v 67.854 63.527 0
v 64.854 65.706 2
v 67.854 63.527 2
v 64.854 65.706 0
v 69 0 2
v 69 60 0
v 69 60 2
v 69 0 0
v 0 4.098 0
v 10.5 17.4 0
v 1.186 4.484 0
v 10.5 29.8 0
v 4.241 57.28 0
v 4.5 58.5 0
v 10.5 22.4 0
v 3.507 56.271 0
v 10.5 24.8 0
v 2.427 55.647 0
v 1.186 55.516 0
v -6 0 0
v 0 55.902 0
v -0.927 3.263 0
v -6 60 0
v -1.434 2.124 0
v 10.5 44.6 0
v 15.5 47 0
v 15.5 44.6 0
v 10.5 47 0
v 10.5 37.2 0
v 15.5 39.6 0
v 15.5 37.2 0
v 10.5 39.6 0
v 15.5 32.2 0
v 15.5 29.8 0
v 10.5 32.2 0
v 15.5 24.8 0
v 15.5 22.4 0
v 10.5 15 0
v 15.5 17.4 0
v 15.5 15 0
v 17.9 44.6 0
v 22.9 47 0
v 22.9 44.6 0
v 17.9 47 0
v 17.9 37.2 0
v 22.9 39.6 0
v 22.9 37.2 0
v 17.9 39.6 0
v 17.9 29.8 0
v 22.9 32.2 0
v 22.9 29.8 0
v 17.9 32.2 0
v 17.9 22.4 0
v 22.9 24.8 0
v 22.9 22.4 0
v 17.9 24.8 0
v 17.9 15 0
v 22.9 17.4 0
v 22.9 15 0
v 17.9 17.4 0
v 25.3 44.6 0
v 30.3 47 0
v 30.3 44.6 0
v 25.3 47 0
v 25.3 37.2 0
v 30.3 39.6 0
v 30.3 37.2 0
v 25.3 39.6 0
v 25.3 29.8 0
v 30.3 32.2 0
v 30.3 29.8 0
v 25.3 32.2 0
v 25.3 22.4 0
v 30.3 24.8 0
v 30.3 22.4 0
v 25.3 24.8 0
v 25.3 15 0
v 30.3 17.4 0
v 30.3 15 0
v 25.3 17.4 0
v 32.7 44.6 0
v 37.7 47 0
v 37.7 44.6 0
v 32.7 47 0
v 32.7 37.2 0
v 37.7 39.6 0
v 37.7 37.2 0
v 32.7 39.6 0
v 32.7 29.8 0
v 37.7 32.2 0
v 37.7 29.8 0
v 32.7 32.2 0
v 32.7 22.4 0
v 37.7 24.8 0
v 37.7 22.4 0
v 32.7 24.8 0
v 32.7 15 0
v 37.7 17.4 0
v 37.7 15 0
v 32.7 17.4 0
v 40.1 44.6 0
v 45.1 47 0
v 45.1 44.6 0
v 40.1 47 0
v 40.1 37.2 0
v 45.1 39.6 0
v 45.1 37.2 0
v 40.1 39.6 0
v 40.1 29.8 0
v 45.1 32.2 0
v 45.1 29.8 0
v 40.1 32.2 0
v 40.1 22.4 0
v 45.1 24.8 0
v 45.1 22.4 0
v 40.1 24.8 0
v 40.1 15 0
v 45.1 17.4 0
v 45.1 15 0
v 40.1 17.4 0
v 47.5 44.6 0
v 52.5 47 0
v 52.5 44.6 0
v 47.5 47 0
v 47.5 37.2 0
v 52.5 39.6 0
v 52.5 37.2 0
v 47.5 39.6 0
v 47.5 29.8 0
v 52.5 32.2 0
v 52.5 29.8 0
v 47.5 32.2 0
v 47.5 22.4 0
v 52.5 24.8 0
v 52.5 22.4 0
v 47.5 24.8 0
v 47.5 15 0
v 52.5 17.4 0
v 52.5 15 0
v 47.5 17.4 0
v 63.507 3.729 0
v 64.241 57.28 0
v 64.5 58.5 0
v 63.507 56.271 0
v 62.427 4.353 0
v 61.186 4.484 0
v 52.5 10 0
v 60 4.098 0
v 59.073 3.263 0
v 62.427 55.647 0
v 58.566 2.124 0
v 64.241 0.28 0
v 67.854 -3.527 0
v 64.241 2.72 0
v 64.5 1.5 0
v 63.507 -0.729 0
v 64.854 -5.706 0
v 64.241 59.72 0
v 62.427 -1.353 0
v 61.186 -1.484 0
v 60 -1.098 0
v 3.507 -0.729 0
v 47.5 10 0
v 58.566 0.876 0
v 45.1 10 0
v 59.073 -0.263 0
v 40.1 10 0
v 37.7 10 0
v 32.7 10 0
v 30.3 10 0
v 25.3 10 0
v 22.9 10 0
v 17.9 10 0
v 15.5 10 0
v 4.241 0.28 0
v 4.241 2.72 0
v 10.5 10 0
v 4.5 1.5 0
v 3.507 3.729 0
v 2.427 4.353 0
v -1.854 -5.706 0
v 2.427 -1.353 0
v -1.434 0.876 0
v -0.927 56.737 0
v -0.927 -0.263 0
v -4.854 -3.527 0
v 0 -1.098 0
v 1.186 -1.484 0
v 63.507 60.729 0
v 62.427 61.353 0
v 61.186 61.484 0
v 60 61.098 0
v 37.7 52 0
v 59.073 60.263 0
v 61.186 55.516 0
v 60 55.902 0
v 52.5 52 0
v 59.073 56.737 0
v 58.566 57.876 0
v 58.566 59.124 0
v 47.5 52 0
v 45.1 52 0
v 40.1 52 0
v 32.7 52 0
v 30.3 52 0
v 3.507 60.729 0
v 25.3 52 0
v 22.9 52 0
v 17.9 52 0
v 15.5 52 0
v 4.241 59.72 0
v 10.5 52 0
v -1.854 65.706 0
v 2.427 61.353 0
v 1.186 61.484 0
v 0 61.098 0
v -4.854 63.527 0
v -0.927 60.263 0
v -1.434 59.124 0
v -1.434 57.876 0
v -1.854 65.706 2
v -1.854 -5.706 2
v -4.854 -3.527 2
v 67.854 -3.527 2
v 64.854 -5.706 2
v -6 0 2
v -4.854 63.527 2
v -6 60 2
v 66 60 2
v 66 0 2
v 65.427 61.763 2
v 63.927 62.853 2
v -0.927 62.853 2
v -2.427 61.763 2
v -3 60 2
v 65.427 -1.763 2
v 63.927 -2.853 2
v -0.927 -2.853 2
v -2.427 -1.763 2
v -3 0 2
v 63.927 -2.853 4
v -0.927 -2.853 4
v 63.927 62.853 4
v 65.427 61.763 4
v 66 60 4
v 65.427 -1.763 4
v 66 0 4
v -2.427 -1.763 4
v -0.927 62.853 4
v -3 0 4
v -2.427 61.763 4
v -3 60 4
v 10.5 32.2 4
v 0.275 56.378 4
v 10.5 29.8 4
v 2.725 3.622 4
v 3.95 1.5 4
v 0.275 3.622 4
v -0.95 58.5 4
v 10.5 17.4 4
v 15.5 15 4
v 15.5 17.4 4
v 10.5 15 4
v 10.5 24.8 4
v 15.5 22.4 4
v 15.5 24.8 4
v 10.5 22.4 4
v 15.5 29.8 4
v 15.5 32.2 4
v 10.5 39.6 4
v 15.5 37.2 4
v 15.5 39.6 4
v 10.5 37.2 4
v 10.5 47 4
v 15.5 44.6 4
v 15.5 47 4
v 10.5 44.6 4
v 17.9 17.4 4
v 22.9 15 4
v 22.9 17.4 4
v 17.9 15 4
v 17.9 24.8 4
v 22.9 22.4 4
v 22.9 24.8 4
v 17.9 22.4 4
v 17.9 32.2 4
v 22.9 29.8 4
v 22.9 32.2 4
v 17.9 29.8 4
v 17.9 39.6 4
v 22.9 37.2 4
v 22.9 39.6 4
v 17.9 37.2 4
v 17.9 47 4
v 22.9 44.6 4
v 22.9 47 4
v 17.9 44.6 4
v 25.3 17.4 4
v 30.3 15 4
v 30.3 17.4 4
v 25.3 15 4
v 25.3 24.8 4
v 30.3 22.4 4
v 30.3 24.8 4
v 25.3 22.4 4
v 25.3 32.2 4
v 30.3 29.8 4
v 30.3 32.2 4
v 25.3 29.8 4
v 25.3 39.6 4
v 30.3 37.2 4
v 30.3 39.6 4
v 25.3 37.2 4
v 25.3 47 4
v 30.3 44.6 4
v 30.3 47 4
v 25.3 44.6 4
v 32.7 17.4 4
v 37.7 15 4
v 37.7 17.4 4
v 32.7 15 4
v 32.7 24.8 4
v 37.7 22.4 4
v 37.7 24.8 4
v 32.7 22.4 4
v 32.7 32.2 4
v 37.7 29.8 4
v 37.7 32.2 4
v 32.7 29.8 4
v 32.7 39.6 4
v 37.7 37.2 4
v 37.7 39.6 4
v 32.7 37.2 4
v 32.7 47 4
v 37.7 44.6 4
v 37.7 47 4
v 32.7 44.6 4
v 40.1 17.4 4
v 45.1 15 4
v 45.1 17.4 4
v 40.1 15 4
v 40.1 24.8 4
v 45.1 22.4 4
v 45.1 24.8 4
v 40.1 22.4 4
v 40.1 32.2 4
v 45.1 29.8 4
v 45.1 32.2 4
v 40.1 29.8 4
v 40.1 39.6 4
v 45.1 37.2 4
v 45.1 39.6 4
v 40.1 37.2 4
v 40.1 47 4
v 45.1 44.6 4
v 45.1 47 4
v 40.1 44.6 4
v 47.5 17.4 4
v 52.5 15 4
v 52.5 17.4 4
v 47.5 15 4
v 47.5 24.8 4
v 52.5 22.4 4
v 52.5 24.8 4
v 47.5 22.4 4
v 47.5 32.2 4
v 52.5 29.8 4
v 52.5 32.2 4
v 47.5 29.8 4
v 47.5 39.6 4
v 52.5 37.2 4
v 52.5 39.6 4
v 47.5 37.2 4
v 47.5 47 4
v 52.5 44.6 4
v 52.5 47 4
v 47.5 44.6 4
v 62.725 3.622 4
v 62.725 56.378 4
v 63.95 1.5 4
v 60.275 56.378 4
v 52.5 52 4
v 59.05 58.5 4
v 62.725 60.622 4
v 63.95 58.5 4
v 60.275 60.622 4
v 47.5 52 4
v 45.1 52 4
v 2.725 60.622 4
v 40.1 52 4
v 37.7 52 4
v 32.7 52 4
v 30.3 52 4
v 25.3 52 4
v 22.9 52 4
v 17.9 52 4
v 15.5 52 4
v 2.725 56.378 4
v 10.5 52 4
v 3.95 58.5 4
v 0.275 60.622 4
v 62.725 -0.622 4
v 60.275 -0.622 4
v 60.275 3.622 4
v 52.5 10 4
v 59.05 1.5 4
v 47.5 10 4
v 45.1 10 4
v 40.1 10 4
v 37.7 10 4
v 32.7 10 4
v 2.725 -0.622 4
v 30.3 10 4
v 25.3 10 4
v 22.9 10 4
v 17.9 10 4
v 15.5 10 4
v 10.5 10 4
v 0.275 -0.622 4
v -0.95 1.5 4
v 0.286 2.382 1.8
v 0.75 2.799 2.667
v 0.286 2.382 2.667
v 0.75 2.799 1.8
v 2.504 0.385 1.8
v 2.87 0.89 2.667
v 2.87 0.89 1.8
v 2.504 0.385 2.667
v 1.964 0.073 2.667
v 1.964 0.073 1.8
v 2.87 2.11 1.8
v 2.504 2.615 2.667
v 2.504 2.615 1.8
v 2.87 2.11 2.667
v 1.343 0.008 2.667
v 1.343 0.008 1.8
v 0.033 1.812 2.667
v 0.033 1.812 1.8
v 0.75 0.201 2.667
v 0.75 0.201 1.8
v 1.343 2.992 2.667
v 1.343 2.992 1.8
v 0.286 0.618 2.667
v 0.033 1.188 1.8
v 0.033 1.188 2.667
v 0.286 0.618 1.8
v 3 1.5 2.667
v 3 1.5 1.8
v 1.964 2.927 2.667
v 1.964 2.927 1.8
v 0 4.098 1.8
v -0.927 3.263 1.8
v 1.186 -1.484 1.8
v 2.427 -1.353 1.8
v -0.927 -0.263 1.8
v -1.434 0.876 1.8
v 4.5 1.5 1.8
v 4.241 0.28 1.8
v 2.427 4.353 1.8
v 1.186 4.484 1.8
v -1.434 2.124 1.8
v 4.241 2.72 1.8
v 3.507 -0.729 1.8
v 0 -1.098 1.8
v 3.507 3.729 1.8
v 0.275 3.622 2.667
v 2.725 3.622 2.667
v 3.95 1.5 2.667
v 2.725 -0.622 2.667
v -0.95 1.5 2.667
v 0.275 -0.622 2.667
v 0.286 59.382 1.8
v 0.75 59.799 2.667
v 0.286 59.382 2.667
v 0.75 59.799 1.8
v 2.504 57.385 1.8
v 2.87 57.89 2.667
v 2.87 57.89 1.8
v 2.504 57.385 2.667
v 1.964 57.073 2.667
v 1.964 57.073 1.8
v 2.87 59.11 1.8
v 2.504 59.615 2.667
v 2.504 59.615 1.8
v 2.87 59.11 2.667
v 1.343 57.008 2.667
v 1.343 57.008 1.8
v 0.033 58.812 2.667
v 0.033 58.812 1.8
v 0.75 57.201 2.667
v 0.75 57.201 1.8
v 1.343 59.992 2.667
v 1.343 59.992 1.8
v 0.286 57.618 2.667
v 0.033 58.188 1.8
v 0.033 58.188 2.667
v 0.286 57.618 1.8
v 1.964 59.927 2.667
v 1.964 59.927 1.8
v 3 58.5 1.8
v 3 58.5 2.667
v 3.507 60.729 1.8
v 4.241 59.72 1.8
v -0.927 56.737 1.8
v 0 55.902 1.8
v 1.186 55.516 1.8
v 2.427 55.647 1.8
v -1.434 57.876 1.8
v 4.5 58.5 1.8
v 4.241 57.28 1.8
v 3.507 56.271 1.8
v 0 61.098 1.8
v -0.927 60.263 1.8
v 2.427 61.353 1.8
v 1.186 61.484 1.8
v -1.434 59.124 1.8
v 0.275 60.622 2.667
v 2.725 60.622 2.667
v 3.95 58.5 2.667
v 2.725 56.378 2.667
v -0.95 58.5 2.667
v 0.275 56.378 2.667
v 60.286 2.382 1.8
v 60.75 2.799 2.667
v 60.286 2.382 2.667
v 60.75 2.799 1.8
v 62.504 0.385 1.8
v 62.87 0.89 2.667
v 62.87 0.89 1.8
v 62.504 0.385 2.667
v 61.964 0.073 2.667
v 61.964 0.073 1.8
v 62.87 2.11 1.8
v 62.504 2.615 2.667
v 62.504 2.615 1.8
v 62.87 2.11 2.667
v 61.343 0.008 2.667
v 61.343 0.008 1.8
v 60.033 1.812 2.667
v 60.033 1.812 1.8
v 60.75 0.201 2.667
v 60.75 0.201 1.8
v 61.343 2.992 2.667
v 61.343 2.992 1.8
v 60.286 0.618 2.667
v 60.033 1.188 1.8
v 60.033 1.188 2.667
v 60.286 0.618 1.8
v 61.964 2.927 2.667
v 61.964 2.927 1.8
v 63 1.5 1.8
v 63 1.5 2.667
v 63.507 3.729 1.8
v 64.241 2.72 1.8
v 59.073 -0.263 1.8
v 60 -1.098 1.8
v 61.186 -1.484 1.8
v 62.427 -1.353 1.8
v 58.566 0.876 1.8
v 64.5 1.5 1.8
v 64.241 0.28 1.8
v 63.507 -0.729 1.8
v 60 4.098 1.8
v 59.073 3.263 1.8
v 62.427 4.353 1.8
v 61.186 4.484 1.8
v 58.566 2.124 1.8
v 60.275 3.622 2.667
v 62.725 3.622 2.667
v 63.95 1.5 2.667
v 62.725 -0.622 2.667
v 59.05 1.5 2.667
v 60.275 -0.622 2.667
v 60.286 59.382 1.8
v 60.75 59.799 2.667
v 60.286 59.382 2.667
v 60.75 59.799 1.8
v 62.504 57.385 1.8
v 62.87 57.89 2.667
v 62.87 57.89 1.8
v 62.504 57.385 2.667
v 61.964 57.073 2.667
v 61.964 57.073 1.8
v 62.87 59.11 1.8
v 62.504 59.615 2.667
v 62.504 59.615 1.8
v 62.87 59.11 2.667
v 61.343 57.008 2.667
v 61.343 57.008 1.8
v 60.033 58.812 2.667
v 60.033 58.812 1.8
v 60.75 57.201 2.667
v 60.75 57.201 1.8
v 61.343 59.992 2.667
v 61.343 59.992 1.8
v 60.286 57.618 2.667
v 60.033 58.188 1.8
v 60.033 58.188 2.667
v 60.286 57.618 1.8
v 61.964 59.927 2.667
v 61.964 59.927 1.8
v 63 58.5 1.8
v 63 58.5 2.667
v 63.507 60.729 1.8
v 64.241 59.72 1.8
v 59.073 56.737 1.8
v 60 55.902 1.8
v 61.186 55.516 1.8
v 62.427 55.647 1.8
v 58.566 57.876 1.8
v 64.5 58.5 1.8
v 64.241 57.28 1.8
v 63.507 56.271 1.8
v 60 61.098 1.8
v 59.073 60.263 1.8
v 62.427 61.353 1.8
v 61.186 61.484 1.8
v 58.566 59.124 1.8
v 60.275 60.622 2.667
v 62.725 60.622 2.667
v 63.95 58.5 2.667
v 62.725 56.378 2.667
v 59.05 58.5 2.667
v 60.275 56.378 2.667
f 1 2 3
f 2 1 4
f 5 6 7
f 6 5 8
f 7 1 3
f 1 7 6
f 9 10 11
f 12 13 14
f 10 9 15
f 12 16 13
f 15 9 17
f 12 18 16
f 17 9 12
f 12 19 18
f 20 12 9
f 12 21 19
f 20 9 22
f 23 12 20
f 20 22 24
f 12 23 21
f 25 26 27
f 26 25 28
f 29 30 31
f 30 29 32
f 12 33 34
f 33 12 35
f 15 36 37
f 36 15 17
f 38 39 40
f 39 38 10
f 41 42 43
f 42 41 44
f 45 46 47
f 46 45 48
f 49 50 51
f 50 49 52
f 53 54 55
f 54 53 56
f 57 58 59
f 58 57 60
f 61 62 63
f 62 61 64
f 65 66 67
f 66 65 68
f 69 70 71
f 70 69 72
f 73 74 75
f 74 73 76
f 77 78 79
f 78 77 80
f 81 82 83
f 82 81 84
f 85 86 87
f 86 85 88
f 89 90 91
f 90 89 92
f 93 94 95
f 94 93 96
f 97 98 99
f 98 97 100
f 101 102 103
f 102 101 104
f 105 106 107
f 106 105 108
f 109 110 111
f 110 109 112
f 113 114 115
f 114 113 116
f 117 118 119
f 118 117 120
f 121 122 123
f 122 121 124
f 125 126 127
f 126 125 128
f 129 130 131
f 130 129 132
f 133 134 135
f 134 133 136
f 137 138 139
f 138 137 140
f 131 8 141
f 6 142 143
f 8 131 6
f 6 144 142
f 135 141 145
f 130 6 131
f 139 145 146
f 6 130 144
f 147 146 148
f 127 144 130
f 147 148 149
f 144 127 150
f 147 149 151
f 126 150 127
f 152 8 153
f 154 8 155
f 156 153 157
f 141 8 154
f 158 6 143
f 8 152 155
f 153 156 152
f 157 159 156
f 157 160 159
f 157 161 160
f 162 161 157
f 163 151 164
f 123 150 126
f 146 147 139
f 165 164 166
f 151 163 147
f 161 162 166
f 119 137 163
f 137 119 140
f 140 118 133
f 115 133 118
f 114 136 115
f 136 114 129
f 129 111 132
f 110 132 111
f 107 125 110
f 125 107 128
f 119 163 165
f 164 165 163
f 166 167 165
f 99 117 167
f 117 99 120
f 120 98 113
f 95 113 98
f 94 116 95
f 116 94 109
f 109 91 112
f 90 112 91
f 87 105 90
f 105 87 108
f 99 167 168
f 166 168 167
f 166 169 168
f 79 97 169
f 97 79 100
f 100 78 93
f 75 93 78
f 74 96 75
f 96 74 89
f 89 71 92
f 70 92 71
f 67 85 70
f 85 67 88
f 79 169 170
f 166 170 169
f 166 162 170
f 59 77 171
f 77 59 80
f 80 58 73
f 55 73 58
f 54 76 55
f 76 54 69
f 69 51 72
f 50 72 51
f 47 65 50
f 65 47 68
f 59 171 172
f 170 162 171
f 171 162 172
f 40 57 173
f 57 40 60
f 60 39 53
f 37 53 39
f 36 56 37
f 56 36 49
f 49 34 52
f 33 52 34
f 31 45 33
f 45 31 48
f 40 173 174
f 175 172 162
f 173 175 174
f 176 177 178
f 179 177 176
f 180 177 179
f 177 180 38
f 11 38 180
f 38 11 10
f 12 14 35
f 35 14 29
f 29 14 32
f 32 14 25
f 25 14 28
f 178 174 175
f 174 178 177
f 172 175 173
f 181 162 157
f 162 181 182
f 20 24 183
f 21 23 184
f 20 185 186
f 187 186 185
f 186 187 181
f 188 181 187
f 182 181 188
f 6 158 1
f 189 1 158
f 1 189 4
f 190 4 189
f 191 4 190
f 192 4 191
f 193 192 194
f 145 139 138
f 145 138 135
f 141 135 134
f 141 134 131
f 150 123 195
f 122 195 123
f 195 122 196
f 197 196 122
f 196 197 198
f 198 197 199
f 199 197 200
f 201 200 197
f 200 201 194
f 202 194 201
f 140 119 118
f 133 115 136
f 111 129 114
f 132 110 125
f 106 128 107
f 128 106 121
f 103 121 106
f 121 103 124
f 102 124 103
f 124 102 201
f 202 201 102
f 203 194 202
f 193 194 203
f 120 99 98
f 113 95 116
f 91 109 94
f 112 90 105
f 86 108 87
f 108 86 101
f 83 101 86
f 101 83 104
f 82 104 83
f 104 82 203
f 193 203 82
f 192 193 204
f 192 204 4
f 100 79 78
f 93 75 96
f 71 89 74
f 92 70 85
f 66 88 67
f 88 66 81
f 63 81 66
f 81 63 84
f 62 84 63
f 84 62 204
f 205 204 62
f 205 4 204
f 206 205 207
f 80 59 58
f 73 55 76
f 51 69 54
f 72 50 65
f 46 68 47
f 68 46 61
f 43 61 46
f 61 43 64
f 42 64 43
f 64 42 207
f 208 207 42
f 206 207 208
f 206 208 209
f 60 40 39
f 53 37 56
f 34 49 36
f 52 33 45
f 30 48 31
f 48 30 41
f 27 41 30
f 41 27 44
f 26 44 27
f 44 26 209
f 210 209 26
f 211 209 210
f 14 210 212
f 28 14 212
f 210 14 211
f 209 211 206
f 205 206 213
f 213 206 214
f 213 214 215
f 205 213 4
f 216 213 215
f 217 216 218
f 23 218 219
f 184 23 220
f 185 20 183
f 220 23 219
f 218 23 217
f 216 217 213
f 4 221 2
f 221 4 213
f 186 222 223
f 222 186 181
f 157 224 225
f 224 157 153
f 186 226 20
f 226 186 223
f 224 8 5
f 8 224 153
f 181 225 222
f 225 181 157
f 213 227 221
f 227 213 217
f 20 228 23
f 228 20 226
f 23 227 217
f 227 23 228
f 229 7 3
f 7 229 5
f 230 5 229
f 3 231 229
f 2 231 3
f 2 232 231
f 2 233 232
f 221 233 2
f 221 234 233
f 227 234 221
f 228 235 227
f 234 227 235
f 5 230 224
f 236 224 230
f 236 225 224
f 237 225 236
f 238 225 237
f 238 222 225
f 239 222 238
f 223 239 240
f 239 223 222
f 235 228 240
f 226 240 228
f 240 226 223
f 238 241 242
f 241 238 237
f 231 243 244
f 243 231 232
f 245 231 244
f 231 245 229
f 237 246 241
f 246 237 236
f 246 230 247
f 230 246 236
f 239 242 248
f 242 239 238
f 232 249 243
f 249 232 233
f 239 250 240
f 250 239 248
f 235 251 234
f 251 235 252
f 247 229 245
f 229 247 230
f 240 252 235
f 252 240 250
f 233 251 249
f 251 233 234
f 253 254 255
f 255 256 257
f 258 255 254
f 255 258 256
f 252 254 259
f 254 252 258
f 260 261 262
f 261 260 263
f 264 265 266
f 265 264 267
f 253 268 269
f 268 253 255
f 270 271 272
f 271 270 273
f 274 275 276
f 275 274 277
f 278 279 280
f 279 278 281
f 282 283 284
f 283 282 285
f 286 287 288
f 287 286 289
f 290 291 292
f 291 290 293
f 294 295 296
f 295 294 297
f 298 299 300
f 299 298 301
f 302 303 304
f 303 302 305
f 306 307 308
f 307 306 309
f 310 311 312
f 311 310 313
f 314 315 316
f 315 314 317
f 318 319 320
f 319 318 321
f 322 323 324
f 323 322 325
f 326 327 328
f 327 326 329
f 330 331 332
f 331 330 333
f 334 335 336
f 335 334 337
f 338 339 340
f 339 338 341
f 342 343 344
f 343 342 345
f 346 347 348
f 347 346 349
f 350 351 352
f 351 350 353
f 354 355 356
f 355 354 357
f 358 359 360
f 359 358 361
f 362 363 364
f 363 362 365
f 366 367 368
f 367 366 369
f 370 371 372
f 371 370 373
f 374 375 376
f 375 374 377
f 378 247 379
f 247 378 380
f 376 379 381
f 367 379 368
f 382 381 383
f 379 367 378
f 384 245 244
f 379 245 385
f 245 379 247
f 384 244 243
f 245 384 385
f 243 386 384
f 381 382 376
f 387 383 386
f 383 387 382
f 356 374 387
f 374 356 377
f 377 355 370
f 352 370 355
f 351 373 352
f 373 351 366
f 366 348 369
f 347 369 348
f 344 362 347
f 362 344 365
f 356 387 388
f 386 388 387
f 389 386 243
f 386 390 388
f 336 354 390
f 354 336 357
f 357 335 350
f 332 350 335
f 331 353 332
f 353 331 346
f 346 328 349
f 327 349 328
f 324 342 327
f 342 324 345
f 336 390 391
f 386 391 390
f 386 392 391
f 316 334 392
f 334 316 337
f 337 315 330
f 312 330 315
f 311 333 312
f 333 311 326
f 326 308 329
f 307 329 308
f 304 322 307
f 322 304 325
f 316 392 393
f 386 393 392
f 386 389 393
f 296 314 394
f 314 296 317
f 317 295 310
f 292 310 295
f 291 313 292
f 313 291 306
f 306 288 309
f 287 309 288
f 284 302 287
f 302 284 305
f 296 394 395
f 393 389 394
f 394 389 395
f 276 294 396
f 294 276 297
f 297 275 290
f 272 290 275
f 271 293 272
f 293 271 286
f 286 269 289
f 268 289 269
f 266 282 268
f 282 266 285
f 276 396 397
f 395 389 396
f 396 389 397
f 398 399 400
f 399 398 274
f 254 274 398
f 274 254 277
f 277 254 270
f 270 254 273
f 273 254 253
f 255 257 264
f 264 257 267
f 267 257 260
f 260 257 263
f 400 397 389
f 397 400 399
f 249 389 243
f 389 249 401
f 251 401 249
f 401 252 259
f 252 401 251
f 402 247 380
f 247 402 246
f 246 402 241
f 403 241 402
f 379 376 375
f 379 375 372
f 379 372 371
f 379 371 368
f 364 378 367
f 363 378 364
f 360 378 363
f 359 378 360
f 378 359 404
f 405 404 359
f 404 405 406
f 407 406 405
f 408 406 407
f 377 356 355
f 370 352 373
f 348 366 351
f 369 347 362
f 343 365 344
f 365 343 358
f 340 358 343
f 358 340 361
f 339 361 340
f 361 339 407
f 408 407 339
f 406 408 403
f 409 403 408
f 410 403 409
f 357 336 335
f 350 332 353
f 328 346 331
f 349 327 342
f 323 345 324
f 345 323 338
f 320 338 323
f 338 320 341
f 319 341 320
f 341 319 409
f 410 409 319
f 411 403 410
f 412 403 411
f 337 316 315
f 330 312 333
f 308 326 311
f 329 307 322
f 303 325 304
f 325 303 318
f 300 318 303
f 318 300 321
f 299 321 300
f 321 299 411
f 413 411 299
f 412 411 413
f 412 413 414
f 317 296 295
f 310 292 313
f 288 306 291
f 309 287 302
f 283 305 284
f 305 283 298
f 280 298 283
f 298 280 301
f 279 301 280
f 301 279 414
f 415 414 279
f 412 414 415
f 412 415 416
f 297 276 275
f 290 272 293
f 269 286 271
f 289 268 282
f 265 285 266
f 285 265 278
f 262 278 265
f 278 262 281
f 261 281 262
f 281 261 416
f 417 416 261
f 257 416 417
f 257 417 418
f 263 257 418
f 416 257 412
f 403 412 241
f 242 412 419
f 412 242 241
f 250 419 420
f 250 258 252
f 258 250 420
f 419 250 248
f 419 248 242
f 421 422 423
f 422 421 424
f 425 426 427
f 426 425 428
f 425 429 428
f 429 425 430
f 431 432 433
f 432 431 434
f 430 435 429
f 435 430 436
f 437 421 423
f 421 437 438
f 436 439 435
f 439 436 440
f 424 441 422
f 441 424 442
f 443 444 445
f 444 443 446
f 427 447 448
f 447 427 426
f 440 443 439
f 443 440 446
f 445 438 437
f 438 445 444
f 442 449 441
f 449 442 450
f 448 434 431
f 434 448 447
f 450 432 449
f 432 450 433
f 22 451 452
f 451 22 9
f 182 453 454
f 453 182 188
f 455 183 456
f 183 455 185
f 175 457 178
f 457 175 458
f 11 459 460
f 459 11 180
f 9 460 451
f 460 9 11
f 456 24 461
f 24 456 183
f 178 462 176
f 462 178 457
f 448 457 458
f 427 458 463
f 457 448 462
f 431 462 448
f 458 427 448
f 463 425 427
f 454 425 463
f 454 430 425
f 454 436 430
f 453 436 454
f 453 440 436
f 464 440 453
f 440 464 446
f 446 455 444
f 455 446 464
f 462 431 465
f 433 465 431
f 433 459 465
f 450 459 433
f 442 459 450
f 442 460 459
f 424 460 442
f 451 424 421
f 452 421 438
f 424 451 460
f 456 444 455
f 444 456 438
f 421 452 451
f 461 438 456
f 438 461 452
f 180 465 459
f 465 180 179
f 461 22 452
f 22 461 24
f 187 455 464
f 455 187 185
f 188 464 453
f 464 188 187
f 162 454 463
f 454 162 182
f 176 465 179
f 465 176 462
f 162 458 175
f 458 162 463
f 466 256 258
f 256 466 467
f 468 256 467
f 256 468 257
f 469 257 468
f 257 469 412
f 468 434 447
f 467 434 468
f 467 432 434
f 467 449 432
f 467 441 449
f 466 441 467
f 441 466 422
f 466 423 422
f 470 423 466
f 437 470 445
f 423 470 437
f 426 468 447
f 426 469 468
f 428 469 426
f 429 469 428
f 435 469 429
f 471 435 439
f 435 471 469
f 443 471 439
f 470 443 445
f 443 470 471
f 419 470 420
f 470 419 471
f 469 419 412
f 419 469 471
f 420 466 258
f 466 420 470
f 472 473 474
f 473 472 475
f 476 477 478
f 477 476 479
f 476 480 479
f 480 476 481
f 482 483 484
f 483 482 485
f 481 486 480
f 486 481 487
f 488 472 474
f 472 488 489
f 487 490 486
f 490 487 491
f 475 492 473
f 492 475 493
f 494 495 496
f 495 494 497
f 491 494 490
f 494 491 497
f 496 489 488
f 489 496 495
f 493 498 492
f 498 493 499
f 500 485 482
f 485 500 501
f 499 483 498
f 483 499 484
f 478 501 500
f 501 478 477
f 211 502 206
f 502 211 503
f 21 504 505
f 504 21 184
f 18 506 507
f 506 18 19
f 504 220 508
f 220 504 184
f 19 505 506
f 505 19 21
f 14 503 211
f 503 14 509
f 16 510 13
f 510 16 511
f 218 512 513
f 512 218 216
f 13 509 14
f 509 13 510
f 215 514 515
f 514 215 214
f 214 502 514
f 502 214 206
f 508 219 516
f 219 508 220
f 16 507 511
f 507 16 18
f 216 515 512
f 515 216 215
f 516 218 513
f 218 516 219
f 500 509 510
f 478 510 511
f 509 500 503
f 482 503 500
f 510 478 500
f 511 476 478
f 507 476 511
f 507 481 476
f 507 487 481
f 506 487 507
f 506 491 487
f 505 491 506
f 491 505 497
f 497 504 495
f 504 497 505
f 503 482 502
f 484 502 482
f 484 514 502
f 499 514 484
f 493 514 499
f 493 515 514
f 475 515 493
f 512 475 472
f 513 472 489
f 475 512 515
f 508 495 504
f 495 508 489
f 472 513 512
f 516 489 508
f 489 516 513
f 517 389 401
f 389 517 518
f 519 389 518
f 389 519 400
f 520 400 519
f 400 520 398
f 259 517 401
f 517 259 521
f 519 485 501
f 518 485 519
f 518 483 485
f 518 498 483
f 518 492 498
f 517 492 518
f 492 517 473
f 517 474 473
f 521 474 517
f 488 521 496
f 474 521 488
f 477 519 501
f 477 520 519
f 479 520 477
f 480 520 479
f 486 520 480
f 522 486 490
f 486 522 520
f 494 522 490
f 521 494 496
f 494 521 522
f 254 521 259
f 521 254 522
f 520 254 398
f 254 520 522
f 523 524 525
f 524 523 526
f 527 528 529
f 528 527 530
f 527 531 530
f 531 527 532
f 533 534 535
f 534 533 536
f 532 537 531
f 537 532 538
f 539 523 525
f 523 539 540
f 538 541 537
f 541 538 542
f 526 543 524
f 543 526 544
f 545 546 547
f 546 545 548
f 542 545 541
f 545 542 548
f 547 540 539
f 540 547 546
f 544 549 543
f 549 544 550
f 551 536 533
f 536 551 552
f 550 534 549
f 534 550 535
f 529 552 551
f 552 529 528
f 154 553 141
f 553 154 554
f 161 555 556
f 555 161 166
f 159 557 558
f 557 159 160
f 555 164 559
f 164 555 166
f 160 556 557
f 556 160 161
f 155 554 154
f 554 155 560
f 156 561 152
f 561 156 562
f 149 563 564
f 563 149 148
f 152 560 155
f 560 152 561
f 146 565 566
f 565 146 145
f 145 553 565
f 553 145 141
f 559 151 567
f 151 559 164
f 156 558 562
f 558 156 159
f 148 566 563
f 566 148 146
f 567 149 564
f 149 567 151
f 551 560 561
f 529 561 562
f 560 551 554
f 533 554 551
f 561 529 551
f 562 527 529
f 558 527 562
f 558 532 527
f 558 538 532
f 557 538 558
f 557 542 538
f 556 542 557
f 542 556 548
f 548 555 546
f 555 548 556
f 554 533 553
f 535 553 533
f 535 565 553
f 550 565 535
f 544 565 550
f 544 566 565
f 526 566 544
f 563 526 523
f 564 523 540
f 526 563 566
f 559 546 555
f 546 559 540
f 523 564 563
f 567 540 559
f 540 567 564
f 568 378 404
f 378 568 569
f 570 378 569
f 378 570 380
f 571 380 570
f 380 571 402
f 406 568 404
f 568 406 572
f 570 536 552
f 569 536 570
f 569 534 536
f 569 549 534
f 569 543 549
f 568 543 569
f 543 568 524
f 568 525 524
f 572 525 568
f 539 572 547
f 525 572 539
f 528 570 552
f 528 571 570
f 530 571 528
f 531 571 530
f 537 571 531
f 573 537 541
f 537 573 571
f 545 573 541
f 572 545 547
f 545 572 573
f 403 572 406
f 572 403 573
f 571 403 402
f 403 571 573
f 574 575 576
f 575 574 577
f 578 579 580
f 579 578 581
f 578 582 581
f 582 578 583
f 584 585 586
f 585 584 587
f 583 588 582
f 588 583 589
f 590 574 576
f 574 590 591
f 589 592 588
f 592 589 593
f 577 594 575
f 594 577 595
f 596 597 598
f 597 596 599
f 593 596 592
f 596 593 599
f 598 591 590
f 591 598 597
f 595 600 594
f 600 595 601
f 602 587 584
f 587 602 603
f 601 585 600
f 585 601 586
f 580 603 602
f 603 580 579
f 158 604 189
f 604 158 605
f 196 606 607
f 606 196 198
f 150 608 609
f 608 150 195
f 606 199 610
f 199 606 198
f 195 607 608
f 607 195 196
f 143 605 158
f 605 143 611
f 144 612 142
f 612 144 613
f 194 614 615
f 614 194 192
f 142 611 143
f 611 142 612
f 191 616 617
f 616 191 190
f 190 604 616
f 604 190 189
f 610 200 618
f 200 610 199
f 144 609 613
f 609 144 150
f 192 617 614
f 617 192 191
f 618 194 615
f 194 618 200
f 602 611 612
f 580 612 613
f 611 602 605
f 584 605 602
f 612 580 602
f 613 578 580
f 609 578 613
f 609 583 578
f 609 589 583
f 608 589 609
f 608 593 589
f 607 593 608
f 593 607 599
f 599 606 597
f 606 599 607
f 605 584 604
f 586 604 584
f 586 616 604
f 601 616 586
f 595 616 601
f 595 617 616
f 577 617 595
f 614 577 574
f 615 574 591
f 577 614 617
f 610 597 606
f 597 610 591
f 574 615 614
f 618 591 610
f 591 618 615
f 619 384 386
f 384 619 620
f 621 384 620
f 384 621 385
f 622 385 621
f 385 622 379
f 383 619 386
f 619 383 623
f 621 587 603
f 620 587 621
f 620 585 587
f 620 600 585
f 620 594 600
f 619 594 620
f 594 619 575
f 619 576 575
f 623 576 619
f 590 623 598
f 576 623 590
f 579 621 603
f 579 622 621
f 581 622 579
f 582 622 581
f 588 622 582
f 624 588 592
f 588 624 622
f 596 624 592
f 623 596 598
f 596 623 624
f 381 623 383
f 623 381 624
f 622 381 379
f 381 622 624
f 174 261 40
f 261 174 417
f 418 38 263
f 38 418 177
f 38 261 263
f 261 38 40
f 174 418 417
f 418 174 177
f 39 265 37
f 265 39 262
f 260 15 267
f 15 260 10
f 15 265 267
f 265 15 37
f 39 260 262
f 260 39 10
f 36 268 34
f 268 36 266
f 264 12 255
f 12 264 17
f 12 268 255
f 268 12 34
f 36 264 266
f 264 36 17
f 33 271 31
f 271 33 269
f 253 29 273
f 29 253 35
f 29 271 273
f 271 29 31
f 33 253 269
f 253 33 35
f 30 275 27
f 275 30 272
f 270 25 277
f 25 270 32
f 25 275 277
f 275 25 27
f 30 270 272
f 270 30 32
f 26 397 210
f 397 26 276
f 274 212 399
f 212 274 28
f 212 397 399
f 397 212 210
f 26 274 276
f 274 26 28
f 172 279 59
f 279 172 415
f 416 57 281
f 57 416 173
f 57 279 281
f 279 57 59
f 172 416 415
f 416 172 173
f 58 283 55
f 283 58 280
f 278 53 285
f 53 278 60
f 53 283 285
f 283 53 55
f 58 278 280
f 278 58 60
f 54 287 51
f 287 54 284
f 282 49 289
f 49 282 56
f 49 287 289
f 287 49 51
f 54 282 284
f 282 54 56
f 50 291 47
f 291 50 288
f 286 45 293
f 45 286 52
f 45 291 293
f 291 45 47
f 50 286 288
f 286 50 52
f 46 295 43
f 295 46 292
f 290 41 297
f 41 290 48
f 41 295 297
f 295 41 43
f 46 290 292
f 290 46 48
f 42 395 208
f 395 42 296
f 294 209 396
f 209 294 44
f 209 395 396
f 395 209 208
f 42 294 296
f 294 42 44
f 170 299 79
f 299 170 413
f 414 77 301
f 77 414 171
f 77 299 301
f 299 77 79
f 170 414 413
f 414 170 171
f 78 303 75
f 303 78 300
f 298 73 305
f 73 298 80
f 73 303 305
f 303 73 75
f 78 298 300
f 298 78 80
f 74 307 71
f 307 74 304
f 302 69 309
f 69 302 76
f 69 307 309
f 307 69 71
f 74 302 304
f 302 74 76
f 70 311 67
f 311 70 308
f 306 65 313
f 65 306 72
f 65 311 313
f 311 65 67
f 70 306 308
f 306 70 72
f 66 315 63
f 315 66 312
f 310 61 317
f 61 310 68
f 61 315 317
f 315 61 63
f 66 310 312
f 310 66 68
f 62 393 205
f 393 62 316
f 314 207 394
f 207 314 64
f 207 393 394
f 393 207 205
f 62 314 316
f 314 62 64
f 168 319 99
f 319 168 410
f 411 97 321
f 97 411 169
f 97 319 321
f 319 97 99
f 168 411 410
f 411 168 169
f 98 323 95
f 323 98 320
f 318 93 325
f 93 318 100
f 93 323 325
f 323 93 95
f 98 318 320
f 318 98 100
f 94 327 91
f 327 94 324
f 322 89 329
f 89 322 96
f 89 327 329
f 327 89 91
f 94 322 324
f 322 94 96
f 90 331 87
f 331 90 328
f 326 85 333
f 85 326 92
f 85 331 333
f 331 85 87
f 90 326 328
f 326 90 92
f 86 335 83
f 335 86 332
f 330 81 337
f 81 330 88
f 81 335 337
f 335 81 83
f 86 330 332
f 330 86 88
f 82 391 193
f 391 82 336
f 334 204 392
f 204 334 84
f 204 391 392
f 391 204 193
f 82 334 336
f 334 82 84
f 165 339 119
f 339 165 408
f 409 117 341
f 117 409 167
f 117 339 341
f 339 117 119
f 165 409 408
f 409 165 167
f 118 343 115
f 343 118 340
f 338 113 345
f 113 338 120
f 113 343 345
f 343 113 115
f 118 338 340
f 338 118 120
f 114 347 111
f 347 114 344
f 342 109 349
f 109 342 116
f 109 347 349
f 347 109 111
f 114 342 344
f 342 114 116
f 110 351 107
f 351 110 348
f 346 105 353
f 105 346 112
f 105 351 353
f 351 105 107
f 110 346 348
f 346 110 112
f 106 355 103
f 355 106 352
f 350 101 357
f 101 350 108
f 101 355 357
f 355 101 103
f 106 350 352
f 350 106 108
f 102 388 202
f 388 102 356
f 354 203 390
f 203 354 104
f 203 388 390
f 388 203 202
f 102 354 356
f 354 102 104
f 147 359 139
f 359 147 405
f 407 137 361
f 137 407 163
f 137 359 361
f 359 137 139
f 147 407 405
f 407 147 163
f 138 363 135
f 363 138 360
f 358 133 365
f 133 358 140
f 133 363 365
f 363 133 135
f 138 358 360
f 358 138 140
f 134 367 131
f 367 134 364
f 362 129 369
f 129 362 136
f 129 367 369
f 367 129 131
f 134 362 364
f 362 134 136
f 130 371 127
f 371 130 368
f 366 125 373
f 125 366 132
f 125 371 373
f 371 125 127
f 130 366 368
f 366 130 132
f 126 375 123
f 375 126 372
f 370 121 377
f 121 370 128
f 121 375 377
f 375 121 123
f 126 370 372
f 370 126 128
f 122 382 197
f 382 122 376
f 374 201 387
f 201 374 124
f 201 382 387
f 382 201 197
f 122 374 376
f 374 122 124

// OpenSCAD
// file: pegs.scad
module pegs() {
    module standoff() { cylinder(h=10, d=4.9, $fn=6); }

    module peg() {
        translate([pin_d/2,pin_d/2,0])
        linear_extrude(height = base_thickness * 4) 
        circle(d=pin_d, $fn=15);

        translate([pin_d/2,pin_d/2,-0.2])
        linear_extrude(height = base_thickness / 2) 
        circle(d=pin_d + 3, $fn=15);

        difference() {
            translate([pin_d/2,pin_d/2,base_thickness / 1.5]) standoff();
        }
    }

    peg();
    translate([0,pin_depth - pin_d,0]) peg();
    translate([pin_widths - pin_d,0,0]) peg();
    translate([pin_widths - pin_d,pin_depth - pin_d,0]) peg();
}
// file: air_holes.scad
module air_holes() {
    cube_size=5;
    count = 5;
    width = pin_widths * (2/3);
    offset = (width - cube_size) / count;

    translate([pin_widths * 1/6, pin_depth * 1/6,0]) {
        for (x=[0:count]) {
            for (y=[0:count]) {
                translate([offset * x, offset * y, -10]) cube([cube_size,cube_size,100]);
            }
        }
    }
}
// file: BOSL2/std.scad
// Minimal BOSL2 compatibility shim for bundled gallery models.
// It implements only the helpers used by the imported OpenSCAD projects.

CENTER = [0, 0, 0];
BOTTOM = [0, 0, -1];
TOP = [0, 0, 1];
LEFT = [-1, 0, 0];
RIGHT = [1, 0, 0];
FRONT = [0, -1, 0];
BACK = [0, 1, 0];

module up(z=0) {
    translate([0, 0, z]) children();
}

module down(z=0) {
    translate([0, 0, -z]) children();
}

module attach(anchor=CENTER) {
    children();
}

module cuboid(size=[1, 1, 1], anchor=CENTER) {
    center = anchor == CENTER;
    translate(center ? [0, 0, 0] : [0, 0, size[2] / 2])
        cube(size, center=true);
    children();
}

module xcyl(h=1, r=1, anchor=CENTER) {
    center = anchor == CENTER;
    translate(center ? [0, 0, 0] : [h / 2, 0, 0])
        rotate([0, 90, 0])
            cylinder(h=h, r=r, center=true);
}
// main file
include <BOSL2/std.scad>
include <./air_holes.scad>;
include <./pegs.scad>;

$fn=10;

pin_widths=63;
pin_depth=60;
base_thickness = 4;
pin_height = 6;
pin_d_base = 5;
pin_d = 3;
case_height = 40;
power_opening = 8;

module bottom() {
    module top() {
        linear_extrude(height=base_thickness / 2) 
        minkowski() {
            square([pin_widths, pin_depth]);
            circle(6);
        }
        linear_extrude(height=(base_thickness)) 
        minkowski() {
            square([pin_widths, pin_depth]);
            circle(3);
        }
    }

    difference() {
        top();
        pegs();
        air_holes();
    }
}

bottom();

echo(version=version());
